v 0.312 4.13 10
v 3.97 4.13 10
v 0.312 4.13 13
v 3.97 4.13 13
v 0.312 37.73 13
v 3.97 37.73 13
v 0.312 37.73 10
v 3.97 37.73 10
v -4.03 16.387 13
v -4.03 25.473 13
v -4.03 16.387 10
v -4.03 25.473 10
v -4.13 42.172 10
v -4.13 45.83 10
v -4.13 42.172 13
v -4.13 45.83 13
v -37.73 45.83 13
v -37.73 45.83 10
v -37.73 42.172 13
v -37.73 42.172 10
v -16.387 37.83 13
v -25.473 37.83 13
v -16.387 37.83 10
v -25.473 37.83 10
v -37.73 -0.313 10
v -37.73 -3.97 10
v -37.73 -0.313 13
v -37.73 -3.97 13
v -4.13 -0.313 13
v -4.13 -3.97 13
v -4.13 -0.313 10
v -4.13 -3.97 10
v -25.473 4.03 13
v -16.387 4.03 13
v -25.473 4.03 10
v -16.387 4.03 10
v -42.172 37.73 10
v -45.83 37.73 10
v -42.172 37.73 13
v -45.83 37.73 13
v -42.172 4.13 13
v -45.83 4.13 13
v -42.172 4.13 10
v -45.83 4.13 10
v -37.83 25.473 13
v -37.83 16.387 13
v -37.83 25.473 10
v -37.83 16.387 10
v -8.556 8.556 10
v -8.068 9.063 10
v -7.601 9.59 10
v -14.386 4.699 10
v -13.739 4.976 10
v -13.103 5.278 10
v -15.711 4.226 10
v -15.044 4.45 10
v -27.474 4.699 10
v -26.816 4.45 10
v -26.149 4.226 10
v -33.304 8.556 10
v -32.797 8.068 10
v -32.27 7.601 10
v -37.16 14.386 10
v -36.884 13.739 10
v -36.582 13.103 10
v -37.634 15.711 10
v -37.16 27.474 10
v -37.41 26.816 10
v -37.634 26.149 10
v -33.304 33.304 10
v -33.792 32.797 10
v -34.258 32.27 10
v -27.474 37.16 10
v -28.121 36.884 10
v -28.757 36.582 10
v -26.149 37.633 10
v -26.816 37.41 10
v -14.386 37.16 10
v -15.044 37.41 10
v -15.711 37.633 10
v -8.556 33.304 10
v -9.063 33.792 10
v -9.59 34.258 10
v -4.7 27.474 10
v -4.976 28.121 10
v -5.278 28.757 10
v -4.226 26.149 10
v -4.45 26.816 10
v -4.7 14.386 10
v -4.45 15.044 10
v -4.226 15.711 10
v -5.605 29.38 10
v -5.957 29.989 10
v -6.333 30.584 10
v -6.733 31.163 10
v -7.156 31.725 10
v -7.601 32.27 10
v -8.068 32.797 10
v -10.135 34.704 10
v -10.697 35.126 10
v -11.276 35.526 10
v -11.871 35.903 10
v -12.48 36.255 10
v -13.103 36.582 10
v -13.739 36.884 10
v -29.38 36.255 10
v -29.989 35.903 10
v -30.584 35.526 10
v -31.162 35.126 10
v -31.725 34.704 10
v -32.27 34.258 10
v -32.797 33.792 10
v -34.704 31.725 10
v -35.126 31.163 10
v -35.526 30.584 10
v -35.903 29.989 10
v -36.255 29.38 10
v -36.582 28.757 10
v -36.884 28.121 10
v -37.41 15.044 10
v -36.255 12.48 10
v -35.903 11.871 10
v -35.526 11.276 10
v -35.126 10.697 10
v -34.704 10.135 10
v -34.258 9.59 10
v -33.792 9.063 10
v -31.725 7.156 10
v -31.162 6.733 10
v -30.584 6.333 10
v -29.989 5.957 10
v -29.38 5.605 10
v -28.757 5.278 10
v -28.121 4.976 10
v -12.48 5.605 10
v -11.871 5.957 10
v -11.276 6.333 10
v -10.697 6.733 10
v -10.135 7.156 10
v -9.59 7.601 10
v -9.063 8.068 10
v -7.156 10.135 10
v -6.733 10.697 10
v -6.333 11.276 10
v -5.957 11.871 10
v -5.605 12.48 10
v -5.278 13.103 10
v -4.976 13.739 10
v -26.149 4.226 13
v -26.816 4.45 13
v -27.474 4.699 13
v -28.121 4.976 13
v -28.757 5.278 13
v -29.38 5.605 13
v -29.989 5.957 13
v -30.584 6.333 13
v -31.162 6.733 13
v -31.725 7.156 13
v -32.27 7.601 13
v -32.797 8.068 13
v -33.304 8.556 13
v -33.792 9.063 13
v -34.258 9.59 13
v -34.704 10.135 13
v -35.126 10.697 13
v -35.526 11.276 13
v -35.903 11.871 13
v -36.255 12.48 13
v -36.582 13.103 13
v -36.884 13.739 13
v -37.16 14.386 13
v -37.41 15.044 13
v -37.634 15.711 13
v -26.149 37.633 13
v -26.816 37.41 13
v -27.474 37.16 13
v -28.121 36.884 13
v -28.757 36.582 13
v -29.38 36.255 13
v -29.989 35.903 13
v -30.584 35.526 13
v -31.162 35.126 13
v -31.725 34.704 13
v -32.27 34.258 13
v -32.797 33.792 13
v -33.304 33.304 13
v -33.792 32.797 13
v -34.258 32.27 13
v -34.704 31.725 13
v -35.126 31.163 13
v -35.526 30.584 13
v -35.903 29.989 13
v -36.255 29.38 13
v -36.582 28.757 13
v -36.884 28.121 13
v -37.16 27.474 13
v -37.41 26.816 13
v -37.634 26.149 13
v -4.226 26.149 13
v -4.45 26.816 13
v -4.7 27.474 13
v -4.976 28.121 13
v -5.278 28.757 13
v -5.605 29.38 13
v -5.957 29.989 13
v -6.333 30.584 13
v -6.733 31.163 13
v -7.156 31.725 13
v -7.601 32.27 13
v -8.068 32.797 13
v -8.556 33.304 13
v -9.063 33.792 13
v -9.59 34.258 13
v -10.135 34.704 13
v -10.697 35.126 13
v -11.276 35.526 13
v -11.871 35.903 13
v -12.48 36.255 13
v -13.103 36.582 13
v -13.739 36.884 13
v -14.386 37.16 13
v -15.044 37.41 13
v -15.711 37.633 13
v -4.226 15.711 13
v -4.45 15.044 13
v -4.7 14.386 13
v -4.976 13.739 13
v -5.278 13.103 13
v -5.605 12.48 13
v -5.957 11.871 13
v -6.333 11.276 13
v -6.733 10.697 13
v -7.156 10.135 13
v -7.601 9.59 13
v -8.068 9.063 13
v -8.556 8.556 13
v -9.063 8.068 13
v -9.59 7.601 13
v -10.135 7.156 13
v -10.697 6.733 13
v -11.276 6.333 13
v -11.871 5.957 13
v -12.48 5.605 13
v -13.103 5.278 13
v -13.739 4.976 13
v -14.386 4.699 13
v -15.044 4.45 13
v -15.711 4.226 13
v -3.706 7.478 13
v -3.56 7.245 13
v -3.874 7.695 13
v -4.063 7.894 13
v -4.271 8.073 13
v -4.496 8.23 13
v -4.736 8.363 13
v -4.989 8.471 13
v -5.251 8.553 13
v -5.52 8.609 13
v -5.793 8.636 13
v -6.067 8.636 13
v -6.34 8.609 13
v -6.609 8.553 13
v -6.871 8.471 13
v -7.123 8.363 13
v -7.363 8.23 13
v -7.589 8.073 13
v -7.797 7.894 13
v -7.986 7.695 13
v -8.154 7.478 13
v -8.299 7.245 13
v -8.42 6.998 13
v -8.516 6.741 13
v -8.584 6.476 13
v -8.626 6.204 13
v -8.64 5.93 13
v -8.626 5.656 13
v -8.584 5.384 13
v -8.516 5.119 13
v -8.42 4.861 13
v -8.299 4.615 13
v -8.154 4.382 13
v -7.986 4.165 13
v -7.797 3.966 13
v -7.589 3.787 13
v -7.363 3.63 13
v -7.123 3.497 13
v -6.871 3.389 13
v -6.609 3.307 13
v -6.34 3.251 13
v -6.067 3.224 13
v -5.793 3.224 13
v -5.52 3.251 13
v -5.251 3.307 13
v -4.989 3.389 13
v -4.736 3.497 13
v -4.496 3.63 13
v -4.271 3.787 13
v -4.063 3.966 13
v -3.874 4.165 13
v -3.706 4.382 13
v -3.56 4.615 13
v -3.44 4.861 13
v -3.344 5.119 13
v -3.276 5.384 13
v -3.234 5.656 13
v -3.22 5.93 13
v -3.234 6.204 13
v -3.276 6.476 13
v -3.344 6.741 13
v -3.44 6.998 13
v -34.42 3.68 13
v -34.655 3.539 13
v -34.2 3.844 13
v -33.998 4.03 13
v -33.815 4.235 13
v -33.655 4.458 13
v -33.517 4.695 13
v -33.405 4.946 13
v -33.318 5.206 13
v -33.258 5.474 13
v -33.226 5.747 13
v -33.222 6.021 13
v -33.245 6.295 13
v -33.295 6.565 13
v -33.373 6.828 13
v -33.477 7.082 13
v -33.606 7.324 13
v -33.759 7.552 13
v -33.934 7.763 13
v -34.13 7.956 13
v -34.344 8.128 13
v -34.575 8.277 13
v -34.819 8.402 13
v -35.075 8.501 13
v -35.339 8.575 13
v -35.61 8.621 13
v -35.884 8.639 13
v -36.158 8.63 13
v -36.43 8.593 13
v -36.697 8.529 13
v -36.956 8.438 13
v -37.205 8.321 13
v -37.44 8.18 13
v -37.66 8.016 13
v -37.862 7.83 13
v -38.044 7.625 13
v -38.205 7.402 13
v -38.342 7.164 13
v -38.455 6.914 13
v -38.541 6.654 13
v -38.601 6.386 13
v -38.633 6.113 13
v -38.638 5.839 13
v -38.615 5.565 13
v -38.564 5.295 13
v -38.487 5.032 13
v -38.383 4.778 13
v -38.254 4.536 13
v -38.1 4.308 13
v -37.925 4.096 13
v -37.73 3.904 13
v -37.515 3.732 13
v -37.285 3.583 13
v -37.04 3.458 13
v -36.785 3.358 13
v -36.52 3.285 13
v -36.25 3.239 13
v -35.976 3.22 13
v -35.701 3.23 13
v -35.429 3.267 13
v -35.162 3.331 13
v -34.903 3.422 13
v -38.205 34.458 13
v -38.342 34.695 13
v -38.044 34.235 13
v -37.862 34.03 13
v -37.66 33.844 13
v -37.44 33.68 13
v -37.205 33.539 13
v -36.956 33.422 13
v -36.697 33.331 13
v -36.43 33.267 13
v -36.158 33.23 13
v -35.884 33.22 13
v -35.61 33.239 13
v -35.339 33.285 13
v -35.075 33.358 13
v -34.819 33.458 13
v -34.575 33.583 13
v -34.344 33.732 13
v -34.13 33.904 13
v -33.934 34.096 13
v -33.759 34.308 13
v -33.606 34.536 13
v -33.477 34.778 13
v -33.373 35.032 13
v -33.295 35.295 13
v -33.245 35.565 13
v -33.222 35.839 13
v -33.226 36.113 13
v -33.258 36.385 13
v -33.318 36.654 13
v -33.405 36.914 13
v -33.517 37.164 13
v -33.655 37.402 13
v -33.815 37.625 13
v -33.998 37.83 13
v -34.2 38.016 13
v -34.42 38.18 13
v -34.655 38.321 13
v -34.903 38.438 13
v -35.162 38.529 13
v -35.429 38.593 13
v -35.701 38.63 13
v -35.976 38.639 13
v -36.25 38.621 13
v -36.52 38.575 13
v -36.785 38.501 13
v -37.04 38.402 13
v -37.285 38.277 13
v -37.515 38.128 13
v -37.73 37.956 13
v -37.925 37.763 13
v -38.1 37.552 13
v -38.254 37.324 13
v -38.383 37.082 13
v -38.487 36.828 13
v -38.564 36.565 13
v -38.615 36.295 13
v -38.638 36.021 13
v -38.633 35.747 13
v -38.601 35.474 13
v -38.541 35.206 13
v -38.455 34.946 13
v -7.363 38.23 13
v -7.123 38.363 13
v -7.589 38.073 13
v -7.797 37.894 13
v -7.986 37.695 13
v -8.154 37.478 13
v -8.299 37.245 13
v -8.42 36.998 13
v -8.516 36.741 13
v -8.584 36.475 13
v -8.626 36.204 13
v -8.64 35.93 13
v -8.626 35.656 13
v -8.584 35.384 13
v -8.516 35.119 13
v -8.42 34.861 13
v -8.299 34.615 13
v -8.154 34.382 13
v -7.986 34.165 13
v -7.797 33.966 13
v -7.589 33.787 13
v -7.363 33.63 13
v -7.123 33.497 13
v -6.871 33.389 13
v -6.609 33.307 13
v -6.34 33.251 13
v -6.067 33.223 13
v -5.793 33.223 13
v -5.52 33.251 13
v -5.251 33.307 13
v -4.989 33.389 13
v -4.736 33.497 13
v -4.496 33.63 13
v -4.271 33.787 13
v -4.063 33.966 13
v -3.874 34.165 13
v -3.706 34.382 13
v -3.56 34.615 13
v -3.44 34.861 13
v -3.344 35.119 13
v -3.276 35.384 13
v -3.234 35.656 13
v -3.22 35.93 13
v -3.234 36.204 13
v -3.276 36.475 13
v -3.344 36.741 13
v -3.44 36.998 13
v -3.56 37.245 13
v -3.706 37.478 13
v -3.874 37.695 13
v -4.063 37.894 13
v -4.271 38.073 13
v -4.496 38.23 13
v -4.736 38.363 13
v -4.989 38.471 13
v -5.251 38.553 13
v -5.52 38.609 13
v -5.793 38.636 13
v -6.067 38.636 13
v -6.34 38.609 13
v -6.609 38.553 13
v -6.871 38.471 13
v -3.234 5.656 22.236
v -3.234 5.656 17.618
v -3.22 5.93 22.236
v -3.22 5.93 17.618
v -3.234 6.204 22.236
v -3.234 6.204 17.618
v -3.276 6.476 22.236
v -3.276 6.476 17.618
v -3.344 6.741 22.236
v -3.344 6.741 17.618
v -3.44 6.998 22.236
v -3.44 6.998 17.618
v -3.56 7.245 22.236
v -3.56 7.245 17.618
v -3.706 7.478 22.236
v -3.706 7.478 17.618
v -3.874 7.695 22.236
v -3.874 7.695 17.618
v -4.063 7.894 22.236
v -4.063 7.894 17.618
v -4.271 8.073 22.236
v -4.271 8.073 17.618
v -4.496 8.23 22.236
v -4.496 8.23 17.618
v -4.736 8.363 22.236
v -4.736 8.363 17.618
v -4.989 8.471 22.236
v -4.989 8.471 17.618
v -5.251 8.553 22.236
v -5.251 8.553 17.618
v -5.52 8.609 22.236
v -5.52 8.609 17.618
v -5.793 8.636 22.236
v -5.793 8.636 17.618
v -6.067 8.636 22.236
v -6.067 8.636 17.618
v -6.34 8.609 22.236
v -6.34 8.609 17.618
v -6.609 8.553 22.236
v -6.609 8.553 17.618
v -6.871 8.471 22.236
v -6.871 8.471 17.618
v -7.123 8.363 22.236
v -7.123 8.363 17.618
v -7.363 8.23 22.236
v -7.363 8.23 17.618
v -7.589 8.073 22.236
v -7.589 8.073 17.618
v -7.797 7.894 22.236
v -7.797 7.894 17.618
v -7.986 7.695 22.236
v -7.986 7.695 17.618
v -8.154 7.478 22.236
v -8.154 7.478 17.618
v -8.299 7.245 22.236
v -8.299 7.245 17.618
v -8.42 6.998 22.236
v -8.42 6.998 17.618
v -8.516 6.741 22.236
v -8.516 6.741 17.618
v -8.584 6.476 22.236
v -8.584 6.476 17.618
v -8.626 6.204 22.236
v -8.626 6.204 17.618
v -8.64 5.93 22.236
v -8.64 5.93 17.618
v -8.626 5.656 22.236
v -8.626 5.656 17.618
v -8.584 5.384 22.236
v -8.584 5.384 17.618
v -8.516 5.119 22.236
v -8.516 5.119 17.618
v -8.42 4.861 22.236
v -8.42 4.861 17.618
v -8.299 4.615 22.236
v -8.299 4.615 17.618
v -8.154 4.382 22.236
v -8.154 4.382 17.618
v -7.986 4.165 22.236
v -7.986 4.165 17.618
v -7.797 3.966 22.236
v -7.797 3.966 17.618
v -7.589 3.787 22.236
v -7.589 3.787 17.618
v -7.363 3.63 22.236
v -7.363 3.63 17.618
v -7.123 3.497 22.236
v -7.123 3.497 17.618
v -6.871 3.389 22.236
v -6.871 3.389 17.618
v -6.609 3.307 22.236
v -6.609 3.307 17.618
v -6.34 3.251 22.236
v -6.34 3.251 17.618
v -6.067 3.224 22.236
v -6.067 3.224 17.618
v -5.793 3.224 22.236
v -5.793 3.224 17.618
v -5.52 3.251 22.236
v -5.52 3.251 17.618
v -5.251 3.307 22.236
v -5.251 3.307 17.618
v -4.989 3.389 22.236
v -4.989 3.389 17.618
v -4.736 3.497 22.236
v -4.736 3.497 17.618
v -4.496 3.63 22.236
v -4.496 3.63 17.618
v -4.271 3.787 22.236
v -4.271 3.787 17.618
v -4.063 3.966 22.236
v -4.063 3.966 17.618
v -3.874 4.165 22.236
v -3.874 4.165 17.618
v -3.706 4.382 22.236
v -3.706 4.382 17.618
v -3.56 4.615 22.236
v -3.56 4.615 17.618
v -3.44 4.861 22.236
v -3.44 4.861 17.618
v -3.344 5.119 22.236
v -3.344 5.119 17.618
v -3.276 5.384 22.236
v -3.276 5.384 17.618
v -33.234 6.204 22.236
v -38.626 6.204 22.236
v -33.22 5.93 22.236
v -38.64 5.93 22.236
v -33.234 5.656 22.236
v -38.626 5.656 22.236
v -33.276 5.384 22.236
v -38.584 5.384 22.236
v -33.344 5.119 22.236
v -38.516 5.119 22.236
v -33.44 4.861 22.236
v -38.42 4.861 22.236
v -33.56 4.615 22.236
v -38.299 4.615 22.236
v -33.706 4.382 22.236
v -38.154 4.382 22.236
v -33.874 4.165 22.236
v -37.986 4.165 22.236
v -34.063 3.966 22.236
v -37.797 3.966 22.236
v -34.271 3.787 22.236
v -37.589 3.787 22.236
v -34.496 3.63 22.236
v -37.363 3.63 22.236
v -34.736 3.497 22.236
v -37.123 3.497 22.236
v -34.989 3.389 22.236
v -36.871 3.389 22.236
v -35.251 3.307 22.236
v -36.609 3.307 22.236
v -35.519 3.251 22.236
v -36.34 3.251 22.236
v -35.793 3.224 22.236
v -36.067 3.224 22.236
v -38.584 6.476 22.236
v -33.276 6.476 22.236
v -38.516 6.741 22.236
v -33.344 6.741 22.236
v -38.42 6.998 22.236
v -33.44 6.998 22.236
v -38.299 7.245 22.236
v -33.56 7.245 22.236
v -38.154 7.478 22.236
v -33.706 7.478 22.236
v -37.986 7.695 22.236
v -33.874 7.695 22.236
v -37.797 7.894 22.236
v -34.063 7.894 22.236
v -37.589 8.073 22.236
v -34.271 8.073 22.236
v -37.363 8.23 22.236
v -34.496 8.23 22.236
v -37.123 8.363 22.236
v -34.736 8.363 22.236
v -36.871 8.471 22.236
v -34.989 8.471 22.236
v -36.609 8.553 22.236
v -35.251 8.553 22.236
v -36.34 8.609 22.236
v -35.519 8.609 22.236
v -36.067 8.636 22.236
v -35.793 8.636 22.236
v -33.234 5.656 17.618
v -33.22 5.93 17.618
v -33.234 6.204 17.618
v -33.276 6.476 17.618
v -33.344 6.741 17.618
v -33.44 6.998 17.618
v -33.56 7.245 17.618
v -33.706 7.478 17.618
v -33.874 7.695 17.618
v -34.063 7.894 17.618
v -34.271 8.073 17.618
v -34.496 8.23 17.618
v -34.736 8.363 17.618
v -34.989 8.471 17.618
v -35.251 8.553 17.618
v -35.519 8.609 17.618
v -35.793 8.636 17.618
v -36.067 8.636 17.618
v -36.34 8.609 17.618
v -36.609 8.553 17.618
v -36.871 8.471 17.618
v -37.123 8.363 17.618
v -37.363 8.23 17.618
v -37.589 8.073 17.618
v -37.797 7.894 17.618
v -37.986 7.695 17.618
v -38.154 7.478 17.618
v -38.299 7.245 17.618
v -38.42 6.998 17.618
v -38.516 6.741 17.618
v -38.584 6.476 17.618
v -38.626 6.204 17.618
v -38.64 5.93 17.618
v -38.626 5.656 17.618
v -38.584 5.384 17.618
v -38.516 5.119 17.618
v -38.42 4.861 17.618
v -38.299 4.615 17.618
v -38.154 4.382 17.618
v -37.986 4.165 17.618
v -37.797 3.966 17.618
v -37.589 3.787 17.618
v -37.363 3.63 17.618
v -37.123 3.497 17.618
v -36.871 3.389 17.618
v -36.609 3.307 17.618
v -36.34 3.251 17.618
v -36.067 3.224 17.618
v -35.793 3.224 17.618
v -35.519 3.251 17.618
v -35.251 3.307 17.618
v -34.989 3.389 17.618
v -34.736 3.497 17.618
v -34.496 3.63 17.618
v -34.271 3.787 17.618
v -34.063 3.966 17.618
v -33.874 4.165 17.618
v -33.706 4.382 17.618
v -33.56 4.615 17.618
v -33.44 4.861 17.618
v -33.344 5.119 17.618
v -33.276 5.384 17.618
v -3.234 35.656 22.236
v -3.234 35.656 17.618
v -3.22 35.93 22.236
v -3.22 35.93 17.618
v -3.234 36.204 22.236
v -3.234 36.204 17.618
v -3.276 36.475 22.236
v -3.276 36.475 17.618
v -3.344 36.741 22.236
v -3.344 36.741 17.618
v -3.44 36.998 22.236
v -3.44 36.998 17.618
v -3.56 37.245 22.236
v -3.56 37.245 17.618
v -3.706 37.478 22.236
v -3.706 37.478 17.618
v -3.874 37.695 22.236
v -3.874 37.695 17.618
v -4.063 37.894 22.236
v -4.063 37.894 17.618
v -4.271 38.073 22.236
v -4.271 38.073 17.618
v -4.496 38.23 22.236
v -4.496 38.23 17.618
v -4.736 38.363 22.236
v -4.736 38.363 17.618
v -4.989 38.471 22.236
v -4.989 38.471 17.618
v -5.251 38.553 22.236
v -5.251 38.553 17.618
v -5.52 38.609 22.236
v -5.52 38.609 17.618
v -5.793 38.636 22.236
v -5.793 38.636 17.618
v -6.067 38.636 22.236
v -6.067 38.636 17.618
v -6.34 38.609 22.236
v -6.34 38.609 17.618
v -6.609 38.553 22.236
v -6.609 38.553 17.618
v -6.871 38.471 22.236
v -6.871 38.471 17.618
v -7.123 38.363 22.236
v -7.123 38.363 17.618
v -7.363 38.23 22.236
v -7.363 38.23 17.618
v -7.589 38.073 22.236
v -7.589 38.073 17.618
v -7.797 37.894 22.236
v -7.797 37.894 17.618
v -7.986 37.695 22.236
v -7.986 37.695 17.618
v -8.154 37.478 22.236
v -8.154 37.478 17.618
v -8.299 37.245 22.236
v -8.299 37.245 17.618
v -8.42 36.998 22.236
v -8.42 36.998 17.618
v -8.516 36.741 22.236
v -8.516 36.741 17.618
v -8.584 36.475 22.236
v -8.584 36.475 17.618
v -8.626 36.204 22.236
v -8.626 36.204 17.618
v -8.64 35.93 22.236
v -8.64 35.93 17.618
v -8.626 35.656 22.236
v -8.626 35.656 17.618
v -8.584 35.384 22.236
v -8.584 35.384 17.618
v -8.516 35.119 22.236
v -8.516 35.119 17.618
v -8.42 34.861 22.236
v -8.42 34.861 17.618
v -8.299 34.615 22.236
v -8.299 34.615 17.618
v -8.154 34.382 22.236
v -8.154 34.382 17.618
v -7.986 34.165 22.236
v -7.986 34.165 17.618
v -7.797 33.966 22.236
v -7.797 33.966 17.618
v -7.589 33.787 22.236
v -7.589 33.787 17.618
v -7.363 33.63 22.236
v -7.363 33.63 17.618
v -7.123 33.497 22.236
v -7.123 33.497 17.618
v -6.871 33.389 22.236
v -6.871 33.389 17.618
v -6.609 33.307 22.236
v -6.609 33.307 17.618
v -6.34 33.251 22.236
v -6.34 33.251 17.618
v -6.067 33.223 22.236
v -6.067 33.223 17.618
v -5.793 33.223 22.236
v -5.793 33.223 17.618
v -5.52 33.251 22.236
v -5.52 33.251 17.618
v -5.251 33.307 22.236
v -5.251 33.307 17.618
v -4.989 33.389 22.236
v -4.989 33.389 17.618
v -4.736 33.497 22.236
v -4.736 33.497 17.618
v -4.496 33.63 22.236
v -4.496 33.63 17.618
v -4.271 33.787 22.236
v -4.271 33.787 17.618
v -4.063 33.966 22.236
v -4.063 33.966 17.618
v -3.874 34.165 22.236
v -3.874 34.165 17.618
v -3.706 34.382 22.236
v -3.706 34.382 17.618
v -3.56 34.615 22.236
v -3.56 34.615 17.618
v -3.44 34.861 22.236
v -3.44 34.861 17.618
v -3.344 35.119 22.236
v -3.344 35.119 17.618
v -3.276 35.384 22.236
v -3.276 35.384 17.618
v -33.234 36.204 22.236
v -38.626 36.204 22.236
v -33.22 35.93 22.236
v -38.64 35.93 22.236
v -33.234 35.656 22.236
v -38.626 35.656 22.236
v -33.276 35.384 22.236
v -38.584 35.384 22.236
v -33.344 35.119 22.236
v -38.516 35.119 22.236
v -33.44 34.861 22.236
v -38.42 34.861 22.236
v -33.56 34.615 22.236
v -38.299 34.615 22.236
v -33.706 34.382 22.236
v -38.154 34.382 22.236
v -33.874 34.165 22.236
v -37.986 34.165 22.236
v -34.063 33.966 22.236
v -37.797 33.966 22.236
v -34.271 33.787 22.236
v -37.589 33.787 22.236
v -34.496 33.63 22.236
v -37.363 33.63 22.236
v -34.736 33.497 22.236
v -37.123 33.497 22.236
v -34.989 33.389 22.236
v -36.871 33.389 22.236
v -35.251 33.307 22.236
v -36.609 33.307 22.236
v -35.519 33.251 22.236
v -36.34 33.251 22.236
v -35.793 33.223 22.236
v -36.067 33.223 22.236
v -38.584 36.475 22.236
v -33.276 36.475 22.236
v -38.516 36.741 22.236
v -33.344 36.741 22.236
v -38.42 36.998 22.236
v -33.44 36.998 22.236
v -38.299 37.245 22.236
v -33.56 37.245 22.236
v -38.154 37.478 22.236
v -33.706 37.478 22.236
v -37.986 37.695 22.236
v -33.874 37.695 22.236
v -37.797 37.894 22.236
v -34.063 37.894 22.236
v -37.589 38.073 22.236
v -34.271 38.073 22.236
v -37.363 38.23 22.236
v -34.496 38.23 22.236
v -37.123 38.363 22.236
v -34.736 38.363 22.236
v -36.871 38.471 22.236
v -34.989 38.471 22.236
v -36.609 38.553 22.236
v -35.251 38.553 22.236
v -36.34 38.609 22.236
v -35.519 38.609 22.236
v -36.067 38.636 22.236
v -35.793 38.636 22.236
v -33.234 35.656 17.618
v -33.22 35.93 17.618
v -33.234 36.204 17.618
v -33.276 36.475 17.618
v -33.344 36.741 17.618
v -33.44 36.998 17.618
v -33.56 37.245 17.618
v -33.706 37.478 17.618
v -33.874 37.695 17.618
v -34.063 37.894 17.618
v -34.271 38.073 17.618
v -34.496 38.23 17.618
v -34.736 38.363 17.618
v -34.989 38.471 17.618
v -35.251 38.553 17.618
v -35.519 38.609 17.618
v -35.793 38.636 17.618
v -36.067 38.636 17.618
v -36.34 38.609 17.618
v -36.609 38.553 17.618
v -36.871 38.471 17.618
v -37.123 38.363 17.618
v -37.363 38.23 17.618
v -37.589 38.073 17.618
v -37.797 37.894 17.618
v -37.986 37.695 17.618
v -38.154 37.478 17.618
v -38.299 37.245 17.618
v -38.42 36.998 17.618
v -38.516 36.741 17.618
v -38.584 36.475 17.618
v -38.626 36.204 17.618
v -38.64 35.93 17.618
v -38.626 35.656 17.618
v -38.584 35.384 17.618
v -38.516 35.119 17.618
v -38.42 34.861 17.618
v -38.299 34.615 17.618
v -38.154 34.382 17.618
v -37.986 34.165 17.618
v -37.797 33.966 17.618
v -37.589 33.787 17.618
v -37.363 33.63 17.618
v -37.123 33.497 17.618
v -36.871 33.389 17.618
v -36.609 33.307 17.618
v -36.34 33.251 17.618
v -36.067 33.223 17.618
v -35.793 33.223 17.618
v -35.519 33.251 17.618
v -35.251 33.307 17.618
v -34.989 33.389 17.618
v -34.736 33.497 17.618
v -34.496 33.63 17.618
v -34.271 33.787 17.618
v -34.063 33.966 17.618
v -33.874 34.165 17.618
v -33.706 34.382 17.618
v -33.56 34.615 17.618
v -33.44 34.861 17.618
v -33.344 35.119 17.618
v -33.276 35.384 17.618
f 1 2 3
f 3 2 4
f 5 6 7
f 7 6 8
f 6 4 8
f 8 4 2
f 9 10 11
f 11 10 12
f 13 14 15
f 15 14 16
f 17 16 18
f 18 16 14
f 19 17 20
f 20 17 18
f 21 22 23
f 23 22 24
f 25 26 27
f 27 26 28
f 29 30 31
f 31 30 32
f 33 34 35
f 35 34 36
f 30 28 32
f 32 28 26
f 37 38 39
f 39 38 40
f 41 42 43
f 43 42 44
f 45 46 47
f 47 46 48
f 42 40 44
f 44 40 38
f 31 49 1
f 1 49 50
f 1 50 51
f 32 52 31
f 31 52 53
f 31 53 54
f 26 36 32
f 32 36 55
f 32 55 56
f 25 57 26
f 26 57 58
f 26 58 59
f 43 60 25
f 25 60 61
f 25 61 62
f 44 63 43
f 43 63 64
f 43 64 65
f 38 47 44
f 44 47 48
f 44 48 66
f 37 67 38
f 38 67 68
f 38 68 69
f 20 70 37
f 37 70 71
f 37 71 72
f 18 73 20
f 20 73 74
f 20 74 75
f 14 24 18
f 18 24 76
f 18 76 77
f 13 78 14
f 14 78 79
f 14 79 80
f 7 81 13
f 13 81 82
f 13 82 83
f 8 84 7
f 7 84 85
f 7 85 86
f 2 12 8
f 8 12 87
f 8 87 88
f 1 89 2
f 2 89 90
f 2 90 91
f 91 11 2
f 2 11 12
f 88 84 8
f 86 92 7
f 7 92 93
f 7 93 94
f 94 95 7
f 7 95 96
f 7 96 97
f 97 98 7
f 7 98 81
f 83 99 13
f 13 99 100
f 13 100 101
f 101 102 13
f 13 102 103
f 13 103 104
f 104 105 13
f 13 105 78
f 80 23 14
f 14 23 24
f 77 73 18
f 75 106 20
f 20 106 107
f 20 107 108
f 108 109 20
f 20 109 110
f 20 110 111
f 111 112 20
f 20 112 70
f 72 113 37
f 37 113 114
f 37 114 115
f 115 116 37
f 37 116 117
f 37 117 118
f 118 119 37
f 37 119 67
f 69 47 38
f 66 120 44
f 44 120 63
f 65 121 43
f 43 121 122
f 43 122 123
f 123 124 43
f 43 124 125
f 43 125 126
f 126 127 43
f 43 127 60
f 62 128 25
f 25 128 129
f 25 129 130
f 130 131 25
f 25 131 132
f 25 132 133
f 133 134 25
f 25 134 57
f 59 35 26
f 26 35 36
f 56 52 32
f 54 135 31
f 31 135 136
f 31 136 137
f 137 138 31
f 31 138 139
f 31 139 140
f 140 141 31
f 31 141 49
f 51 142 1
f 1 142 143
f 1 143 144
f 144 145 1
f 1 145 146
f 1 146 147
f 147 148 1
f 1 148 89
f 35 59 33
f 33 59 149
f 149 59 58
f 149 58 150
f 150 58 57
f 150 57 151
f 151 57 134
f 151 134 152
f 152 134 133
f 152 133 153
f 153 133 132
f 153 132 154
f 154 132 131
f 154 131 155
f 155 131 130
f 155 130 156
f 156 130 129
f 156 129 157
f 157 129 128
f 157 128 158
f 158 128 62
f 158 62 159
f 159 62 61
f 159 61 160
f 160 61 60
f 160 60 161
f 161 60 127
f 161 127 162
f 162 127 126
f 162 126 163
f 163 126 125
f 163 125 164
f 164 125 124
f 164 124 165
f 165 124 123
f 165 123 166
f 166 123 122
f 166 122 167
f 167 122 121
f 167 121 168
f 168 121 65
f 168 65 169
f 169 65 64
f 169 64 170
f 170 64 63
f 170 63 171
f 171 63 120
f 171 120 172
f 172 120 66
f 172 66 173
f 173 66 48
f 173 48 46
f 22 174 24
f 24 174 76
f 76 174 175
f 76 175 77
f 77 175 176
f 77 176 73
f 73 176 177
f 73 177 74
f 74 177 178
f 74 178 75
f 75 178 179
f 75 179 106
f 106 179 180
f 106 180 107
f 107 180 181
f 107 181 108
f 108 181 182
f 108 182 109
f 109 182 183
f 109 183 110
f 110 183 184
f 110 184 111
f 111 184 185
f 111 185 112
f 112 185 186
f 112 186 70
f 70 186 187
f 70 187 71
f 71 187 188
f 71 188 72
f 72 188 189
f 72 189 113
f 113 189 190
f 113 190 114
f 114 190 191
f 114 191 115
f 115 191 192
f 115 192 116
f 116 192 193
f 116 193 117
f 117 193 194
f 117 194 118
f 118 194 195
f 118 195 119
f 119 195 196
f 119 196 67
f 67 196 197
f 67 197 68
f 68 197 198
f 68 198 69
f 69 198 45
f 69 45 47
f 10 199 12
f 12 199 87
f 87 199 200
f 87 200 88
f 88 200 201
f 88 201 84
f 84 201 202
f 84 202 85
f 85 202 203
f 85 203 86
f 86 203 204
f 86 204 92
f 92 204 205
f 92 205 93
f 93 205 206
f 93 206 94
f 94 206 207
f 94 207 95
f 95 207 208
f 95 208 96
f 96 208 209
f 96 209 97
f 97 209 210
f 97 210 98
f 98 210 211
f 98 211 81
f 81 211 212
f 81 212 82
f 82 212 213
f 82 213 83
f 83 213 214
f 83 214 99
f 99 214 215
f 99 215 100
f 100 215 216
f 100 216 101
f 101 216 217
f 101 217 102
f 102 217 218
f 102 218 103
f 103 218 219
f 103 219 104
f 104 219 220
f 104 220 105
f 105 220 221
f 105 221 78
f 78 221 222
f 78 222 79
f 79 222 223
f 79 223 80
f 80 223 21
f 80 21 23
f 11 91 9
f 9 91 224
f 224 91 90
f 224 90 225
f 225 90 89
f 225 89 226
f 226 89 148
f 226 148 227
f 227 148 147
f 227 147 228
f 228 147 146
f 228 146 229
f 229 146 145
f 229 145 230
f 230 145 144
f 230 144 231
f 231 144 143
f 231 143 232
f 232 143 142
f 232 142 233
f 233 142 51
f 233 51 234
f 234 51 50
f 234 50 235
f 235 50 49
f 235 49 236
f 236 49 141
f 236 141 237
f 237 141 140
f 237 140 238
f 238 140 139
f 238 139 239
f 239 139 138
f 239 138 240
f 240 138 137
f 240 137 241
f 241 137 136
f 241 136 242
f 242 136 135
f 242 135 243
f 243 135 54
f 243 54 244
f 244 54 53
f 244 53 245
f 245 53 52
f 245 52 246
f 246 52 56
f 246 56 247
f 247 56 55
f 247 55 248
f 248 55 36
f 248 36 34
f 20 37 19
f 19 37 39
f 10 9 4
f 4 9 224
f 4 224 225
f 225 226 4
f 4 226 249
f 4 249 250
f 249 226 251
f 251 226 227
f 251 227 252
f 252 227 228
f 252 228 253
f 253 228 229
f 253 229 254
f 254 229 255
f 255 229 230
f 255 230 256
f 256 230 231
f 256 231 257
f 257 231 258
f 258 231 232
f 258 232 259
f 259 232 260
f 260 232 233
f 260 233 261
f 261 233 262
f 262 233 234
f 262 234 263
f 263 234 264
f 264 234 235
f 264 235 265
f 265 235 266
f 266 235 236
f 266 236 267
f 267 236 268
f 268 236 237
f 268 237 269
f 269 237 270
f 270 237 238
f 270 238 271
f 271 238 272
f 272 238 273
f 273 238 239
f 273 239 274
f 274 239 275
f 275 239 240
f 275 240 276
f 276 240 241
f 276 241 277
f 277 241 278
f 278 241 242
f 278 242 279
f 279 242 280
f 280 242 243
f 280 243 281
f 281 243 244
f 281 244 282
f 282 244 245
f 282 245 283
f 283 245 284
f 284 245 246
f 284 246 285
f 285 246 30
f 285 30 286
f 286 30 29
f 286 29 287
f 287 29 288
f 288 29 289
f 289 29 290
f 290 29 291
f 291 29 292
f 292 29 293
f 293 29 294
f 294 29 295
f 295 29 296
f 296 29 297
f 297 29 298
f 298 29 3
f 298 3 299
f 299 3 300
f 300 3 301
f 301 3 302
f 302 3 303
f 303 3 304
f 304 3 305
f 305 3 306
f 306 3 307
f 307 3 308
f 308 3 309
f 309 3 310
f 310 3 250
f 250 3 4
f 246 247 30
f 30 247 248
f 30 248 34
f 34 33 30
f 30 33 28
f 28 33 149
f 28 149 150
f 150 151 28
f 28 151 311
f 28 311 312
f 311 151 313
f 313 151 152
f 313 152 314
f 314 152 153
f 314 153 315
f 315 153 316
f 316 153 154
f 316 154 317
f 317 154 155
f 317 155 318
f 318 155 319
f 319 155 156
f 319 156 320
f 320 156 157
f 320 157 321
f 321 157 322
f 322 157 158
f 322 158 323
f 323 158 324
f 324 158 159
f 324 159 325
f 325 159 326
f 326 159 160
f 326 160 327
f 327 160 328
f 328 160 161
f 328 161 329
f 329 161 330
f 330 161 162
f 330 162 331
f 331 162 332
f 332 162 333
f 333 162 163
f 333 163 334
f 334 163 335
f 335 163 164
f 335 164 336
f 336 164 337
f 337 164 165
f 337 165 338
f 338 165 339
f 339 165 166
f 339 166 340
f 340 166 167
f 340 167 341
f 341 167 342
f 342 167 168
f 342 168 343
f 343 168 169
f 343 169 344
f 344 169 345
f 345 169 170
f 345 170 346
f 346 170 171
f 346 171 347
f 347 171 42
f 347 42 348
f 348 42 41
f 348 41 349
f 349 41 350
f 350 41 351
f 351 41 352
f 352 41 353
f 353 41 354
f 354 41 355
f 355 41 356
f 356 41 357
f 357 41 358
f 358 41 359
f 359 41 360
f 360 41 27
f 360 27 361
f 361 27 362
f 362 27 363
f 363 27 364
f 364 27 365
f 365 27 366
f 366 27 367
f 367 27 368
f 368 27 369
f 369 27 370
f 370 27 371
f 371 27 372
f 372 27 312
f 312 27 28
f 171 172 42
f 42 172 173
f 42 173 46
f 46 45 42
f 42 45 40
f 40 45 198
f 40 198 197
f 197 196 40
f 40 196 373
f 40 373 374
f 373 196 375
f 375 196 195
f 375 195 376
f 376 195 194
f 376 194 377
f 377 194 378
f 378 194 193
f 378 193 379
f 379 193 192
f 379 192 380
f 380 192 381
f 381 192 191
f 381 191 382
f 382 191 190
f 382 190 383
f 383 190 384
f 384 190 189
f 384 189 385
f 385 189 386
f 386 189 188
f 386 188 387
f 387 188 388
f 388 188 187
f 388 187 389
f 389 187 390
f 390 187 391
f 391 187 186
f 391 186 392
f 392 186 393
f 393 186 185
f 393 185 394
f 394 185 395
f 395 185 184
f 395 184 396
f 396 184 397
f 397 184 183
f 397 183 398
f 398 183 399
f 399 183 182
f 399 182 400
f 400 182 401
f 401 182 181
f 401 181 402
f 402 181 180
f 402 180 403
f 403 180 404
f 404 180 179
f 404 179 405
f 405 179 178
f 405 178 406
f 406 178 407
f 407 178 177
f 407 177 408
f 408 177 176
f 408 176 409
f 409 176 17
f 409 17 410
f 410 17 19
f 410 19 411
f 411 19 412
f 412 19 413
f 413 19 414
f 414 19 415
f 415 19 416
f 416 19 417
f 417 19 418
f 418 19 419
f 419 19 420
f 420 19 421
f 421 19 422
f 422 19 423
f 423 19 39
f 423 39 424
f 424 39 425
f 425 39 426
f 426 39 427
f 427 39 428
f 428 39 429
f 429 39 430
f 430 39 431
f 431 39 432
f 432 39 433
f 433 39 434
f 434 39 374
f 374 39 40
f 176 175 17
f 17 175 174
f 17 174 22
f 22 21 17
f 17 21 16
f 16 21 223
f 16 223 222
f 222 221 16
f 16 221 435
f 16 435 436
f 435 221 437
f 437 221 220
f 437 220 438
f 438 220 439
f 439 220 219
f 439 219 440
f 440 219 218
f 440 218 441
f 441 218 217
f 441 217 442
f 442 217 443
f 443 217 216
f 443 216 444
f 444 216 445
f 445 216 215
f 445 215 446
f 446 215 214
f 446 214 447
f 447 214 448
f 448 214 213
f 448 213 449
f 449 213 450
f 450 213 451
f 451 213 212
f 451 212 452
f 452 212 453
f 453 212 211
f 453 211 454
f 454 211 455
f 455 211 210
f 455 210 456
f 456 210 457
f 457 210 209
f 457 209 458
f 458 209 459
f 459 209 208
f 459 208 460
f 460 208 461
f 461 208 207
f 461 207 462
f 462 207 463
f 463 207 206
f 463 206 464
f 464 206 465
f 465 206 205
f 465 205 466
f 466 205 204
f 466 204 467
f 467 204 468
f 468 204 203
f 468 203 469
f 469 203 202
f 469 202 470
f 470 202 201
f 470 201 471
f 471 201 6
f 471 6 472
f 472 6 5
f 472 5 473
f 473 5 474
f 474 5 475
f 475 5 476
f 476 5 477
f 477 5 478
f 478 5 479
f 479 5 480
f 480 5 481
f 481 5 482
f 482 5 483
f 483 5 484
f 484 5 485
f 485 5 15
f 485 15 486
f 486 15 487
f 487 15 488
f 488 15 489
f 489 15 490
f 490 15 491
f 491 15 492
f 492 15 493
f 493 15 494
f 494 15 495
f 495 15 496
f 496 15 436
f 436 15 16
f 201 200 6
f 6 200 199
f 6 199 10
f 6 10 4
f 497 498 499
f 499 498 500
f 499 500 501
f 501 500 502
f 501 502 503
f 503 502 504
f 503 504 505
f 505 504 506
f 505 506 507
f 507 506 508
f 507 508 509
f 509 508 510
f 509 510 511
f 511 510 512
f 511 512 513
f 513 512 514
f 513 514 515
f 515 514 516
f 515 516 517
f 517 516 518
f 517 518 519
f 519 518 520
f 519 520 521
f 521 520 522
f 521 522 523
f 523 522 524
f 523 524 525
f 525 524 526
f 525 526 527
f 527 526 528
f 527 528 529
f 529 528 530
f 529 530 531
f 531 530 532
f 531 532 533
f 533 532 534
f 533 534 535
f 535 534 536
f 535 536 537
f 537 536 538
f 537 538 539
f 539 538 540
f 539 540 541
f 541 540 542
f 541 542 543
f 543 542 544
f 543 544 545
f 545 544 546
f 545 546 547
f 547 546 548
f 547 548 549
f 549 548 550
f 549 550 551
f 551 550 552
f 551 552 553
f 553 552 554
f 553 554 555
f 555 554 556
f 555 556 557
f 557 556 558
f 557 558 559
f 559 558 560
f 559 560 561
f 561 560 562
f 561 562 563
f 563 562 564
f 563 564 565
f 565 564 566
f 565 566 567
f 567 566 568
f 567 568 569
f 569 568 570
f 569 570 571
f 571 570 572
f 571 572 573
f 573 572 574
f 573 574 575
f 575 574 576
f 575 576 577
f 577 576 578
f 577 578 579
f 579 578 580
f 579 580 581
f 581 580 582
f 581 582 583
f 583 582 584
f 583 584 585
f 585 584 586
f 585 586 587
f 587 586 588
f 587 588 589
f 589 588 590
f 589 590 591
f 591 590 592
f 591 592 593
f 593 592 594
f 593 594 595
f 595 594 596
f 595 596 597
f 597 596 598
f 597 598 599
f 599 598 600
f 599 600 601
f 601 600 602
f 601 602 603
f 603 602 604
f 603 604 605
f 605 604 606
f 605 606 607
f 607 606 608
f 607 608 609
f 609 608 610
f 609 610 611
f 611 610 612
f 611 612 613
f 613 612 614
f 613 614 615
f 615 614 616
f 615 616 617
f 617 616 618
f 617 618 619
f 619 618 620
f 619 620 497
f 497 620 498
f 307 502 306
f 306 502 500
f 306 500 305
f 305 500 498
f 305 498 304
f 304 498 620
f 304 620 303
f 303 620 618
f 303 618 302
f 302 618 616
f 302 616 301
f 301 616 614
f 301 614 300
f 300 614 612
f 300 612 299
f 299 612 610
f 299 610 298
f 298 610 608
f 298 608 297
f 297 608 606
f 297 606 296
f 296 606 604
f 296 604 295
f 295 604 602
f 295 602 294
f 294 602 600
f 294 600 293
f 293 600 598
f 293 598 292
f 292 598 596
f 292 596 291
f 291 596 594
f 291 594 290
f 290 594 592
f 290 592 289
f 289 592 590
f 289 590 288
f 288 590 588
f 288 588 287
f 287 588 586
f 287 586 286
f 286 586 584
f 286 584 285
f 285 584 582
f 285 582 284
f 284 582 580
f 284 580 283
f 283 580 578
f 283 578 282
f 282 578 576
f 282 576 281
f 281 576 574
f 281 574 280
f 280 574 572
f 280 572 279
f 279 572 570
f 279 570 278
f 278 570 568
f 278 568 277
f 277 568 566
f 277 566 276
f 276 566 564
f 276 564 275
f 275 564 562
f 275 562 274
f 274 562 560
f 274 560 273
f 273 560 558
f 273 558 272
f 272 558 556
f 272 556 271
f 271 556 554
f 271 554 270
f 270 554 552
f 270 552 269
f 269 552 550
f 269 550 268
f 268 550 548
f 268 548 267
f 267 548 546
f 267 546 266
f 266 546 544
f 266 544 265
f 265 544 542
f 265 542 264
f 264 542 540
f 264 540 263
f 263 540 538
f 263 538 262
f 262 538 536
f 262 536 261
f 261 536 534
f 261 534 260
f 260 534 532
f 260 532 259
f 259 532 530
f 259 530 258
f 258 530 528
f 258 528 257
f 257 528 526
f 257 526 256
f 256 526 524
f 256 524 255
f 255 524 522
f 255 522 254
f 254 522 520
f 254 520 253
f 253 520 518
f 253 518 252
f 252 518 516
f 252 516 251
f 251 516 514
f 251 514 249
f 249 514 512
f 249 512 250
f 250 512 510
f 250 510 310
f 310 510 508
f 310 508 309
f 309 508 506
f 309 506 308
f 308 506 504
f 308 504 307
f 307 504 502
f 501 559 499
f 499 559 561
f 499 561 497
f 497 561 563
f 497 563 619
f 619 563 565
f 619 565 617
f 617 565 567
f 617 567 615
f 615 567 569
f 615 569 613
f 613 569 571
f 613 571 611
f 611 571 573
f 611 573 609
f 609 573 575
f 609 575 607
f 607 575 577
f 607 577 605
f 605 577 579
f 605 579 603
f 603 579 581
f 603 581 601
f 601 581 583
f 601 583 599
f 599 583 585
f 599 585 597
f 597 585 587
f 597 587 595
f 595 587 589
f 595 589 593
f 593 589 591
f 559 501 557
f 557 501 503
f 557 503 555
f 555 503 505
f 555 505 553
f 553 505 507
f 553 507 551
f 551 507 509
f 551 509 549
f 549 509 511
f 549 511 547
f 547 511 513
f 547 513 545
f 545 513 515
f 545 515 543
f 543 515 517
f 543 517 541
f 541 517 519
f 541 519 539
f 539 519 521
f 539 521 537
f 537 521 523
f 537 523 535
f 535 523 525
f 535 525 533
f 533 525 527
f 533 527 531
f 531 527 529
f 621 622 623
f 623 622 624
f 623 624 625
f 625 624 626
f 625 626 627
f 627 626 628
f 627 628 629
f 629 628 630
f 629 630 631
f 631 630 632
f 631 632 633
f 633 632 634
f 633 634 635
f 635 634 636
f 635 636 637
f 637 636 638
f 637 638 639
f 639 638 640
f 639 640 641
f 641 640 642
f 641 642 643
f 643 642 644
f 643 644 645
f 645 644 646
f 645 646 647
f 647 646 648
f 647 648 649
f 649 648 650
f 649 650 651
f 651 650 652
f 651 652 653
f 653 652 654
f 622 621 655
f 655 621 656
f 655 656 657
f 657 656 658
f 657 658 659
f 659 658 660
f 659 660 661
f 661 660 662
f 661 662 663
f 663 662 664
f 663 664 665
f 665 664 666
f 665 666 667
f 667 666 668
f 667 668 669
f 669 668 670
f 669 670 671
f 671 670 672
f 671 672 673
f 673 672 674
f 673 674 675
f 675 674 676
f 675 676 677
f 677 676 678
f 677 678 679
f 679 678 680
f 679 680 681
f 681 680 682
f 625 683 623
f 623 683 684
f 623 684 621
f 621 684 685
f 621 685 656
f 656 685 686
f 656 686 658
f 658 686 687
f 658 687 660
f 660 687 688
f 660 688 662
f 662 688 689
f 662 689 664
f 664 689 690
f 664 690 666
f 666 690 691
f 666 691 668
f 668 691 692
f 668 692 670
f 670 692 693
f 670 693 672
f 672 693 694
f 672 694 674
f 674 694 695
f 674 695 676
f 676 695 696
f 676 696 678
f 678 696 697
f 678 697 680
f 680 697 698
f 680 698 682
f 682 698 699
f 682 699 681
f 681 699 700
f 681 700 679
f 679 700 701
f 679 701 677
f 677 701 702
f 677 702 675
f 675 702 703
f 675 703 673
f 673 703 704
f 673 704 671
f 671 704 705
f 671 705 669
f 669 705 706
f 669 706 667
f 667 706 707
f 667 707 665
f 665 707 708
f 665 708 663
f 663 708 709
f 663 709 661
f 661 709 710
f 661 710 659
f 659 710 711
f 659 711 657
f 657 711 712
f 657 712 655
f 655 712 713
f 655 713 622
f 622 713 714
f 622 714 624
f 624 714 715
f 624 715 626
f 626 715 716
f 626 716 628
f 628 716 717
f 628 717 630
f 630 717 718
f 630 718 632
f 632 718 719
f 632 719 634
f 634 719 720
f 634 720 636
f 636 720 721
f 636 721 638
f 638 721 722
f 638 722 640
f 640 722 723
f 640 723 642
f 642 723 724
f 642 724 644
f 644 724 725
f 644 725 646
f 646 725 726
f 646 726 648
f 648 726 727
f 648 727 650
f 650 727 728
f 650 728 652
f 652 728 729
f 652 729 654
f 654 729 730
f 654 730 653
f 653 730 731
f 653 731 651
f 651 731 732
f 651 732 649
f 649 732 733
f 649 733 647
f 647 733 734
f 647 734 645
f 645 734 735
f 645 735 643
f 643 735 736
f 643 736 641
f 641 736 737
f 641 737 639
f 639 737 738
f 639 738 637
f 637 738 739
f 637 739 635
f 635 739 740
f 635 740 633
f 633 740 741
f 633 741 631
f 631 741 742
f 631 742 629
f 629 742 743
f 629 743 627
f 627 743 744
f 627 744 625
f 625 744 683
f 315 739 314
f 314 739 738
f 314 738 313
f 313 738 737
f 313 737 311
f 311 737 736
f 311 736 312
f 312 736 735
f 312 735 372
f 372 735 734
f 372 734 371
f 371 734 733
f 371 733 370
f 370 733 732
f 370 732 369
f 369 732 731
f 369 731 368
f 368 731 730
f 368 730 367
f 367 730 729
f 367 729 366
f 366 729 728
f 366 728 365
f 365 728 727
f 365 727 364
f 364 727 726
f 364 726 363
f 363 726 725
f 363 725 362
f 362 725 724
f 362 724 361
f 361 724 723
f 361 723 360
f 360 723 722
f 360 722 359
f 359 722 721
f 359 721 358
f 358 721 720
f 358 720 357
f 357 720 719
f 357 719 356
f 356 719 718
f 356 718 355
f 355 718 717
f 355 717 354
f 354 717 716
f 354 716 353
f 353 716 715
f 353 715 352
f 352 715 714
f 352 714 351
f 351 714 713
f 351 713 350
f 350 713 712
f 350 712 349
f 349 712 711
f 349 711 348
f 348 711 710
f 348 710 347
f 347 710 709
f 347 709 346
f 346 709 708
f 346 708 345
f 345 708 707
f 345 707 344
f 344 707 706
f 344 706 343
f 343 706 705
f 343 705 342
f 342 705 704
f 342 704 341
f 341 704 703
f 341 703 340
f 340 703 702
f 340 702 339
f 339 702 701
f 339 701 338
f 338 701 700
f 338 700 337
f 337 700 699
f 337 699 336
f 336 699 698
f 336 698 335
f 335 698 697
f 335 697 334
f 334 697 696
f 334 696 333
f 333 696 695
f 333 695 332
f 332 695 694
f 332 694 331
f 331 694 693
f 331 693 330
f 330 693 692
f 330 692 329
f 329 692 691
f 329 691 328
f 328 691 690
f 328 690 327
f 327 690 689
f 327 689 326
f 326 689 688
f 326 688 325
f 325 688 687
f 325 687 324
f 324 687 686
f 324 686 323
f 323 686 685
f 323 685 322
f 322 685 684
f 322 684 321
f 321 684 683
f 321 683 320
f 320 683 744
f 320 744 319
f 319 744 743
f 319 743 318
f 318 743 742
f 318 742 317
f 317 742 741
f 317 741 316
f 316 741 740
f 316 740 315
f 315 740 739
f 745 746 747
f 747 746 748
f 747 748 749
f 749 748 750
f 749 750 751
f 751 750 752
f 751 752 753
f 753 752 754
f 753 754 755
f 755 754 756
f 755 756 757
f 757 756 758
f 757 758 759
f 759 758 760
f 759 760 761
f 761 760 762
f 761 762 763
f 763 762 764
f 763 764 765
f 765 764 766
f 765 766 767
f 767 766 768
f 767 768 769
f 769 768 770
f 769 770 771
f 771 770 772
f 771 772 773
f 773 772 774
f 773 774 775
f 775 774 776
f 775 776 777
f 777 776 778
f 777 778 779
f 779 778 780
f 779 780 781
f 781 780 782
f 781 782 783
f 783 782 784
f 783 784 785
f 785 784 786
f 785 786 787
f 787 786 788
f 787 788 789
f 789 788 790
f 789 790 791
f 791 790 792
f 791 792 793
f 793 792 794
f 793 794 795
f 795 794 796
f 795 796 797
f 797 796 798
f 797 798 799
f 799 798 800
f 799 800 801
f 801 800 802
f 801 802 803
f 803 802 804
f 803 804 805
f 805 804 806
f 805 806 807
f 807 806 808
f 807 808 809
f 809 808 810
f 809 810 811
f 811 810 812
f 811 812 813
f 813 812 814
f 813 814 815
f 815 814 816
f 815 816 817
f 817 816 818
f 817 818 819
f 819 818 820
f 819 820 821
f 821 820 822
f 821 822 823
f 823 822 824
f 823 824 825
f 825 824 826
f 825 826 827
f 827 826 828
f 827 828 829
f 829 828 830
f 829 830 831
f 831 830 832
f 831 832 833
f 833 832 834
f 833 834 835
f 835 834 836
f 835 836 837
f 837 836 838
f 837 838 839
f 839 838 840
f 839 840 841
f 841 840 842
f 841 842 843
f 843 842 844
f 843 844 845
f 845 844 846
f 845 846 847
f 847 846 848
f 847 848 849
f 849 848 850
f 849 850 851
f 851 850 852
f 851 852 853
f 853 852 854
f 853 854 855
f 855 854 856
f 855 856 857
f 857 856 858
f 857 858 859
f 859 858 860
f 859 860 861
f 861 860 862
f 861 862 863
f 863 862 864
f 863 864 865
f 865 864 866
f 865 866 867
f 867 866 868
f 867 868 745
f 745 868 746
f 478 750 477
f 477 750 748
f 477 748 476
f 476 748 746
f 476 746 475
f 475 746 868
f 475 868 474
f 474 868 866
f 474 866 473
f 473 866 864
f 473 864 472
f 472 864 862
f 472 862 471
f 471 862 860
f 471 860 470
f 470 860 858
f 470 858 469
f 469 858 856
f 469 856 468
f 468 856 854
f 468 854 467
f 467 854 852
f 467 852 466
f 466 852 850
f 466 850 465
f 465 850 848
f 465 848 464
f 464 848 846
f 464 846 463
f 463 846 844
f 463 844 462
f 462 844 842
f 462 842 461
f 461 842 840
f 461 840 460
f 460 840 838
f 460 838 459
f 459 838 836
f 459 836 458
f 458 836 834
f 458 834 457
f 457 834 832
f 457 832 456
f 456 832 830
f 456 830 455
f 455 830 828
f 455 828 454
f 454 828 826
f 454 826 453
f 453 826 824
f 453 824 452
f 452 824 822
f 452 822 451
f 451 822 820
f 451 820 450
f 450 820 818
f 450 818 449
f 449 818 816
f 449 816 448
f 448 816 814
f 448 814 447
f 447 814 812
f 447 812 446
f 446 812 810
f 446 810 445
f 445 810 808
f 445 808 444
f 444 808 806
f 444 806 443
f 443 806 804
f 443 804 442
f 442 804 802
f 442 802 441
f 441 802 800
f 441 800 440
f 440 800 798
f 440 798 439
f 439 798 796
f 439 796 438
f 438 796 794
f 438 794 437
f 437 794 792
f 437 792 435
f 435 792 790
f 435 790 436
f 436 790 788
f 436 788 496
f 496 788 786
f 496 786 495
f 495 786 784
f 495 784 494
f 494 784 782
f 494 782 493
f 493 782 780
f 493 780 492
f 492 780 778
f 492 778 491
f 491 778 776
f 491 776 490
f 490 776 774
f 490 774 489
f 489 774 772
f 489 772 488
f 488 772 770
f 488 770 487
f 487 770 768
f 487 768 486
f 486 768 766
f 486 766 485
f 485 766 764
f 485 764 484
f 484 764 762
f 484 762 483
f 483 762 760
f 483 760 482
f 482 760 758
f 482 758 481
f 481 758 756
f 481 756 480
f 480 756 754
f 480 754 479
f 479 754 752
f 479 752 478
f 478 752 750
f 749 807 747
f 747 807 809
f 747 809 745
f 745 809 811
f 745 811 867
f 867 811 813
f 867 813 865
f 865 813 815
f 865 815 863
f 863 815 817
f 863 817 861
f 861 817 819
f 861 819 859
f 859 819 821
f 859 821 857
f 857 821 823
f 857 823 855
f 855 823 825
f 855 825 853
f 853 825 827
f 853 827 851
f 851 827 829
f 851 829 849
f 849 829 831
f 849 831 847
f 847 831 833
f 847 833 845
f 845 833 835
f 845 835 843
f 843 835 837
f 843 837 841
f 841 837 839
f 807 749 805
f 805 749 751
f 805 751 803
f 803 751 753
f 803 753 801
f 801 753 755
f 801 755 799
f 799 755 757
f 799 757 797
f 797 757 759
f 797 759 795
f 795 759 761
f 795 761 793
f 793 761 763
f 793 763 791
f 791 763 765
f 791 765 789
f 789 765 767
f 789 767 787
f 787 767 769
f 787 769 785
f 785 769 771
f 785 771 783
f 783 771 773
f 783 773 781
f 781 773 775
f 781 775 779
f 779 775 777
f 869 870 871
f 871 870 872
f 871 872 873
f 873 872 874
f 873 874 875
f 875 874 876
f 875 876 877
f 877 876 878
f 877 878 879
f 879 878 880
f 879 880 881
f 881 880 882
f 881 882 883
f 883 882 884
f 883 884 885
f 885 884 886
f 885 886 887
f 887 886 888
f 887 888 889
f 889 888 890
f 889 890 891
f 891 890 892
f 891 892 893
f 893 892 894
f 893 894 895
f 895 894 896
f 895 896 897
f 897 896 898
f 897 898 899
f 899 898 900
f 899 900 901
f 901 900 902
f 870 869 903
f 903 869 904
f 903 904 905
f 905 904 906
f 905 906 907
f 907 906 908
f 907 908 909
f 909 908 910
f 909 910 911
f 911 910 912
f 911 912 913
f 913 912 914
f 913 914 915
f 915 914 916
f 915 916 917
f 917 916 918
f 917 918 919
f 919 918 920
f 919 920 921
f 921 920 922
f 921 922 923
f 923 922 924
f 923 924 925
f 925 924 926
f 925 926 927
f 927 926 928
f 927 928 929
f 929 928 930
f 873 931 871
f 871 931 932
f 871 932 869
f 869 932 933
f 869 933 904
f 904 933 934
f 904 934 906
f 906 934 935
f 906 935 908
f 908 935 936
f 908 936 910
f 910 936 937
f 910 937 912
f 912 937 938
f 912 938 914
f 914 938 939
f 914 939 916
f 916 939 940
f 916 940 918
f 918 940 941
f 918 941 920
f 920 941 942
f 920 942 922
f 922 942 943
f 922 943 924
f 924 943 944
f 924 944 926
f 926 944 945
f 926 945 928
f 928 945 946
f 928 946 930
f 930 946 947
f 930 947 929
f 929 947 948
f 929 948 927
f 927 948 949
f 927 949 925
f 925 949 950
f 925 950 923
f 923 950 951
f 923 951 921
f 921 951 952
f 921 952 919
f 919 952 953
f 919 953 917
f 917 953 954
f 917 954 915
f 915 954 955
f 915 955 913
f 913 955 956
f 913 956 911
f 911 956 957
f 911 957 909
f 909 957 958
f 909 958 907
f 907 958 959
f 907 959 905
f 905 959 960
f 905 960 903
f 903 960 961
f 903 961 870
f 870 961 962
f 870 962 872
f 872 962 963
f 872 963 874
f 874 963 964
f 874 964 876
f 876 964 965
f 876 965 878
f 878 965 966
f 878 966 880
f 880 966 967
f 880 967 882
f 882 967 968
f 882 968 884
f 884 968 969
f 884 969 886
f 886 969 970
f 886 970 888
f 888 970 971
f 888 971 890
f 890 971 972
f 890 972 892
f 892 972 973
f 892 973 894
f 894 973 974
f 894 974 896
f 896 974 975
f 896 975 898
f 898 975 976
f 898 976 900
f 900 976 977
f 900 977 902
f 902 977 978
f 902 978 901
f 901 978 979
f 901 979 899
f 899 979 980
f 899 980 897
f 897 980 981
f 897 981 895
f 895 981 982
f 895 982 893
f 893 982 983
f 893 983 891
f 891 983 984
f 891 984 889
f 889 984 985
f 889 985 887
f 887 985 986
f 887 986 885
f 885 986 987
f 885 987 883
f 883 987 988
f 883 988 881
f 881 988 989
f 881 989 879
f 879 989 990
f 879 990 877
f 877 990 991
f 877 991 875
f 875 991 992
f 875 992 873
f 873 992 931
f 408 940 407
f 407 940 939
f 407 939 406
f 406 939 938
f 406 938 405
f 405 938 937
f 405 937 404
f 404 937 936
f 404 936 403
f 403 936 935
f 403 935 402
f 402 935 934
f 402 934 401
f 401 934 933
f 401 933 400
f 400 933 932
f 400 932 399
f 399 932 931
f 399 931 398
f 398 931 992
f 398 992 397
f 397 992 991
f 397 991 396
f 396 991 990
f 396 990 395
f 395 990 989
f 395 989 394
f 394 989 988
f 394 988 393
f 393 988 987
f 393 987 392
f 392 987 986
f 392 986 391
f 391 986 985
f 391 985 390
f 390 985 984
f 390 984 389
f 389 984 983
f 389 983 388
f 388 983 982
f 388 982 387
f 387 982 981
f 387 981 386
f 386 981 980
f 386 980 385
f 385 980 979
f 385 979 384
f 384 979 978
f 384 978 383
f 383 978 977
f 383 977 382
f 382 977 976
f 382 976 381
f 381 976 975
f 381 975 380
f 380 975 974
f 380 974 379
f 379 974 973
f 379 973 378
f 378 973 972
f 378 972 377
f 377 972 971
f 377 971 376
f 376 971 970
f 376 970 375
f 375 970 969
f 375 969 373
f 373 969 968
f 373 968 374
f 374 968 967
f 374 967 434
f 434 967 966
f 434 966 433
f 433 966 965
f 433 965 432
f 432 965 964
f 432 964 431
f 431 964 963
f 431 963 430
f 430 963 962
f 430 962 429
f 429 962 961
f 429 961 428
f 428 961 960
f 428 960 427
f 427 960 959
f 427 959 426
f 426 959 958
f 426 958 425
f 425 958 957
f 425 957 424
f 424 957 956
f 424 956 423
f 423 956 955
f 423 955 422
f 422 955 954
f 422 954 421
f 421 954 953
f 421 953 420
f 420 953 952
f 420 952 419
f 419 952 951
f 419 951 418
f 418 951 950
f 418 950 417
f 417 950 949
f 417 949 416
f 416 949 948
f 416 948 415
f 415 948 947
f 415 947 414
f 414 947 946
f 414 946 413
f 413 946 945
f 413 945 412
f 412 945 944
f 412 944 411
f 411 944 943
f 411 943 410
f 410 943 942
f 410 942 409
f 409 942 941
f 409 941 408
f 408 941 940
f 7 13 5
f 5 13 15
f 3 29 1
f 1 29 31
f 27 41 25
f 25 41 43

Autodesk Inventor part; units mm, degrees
ref_plane "YZ Plane" through (0, 0, 0) normal (1, 0, 0) x (0, 1, 0)
ref_plane "XZ Plane" through (0, 0, 0) normal (0, 1, 0) x (-1, 0, 0)
ref_plane "Work Plane1" through (0, 0, 10) normal (0, 0, 1) x (1, 0, 0)
sketch "Sketch1" plane through (0, 0, 10) normal (0, 0, 1) x (1, 0, 0)
  line L0 (-4.0299, -0.3538) -> (-2.2322, 1.4439) construction
  arc A0 (-1.4439, 2.2322) -> (-2.2322, 1.4439) centre (-0.9299, 0.9299) ccw construction
  line L1 (-1.4439, 2.2322) -> (0.3538, 4.0299) construction
  line L2 (-37.8299, 42.8299) -> (-37.8299, 37.8299) construction
  line L3 (-37.8299, 37.8299) -> (-42.9208, 37.8299) construction
  line L4 (-37.8299, 42.2137) -> (-37.8299, 45.8299) construction
  line L5 (-37.8299, 45.8299) -> (-4.0299, 45.8299) construction
  line L6 (-4.0299, 45.8299) -> (-4.0299, 42.2137) construction
  line L7 (-4.0299, 4.0299) -> (0.3538, 4.0299) projected
  circle A1 centre (-20.9299, 20.9299) radius 17.5 projected
  line L8 (-20.9299, 58.9723) -> (17.1124, 20.9299) construction
  line L9 (17.1124, 20.9299) -> (-20.9299, -17.1124) construction
  line L10 (-20.9299, -17.1124) -> (-58.9723, 20.9299) construction
  line L11 (-58.9723, 20.9299) -> (-20.9299, 58.9723) construction
  line L12 (-20.9299, 58.9723) -> (-20.9299, -17.1124) construction
  line L13 (17.1124, 20.9299) -> (-58.9723, 20.9299) construction
  line L14 (-20.9299, 58.9723) -> (32.8701, 58.9723) construction
  line L15 (-43.4299, 43.4299) -> (1.5701, 43.4299) construction
  line L16 (1.5701, 43.4299) -> (1.5701, -1.5701) construction
  line L17 (1.5701, -1.5701) -> (-43.4299, -1.5701) construction
  line L18 (-43.4299, -1.5701) -> (-43.4299, 43.4299) construction
  line L19 (-43.4299, 43.4299) -> (1.5701, -1.5701) construction
  line L20 (1.5701, 43.4299) -> (-43.4299, -1.5701) construction
  line L21 (-43.4299, 5.3876) -> (-43.4299, 36.4723)
  line L22 (-43.4299, 36.4723) -> (-36.4723, 43.4299)
  line L23 (-36.4723, 43.4299) -> (-5.3876, 43.4299)
  line L24 (-5.3876, 43.4299) -> (1.5701, 36.4723)
  line L25 (1.5701, 36.4723) -> (1.5701, 5.3876)
  line L26 (1.5701, 5.3876) -> (-5.3876, -1.5701)
  line L27 (-5.3876, -1.5701) -> (-36.4723, -1.5701)
  line L28 (-36.4723, -1.5701) -> (-43.4299, 5.3876)
  line L29 (-4.0299, 42.2137) -> (-37.8299, 42.2137) projected
  line L30 (-4.0299, -0.3538) -> (-4.0299, 4.0299) projected
  point P0 (-37.8299, 4.0299)
  point P1 (-20.9299, 20.9299)
  dimension "d18" = 53.8
  dimension "d19" = 45
  dimension "d20" = 53.8
  dimension "d21" = 45
  dimension "d22" = 45
extrude "Extrusion1" add sketch "Sketch1" along normal blind 3
sketch "Sketch2" plane through (0, 0, 13) normal (0, 0, 1) x (1, 0, 0)
  circle A0 centre (-35.9299, 35.9299) radius 3.0099 construction
  circle A1 centre (-5.93, 35.9299) radius 3.0099 construction
  circle A2 centre (-5.93, 5.93) radius 3.0099 construction
  circle A3 centre (-35.9299, 5.93) radius 3.0099 construction
  circle A4 centre (-35.9299, 35.9299) radius 2.7099
  circle A5 centre (-5.93, 35.9299) radius 2.7099
  circle A6 centre (-5.93, 5.93) radius 2.7099
  circle A7 centre (-35.9299, 5.93) radius 2.7099
  point P0 (0, 0)
  dimension "d_1" = 0.3
  dimension "d13" = 0.3
  dimension "d14" = 0.3
  dimension "d15" = 0.3
ref_plane "Work Plane2" through (-40.9959, 0.8639, 22.2359) normal (0, 0, 1) x (1, 0, 0)
extrude "Extrusion2" add sketch "Sketch2" along normal up to surface (9.2359 mm away)
sketch "Sketch3" plane through (0, 0, 10) normal (0, 0, -1) x (-1, 0, 0)
  line L0 (37.8299, -0.4701) -> (37.8299, 4.0299) construction
  line L1 (4.0299, 4.0299) -> (4.0299, -0.4701) construction
  line L2 (37.8299, -0.4701) -> (37.8299, 1.1886) construction
  line L3 (4.0299, -3.9701) -> (4.0299, -0.3538) construction
  line L4 (45.8299, 4.0299) -> (42.2137, 4.0299) construction
  line L5 (-0.3538, 4.0299) -> (-3.9701, 4.0299) construction
  line L6 (-3.9701, 37.8299) -> (-0.3538, 37.8299) construction
  line L7 (4.0299, 42.2137) -> (4.0299, 45.8299) construction
  line L8 (37.8299, 45.8299) -> (37.8299, 42.2137) construction
  line L9 (42.2137, 37.8299) -> (45.8299, 37.8299) construction
  line L10 (37.8299, 37.7299) -> (45.8299, 37.7299)
  line L11 (45.8299, 37.7299) -> (45.8299, 4.1299)
  line L12 (45.8299, 4.1299) -> (37.8299, 4.1299)
  line L13 (37.8299, 4.1299) -> (37.8299, 37.7299)
  line L14 (37.7299, 4.0299) -> (4.1299, 4.0299)
  line L15 (4.1299, 4.0299) -> (4.1299, -3.9701)
  line L16 (4.1299, -3.9701) -> (37.7299, -3.9701)
  line L17 (37.7299, -3.9701) -> (37.7299, 4.0299)
  line L18 (4.0299, 4.1299) -> (-3.9701, 4.1299)
  line L19 (-3.9701, 4.1299) -> (-3.9701, 37.7299)
  line L20 (-3.9701, 37.7299) -> (4.0299, 37.7299)
  line L21 (4.0299, 37.7299) -> (4.0299, 4.1299)
  line L22 (4.1299, 37.8299) -> (37.7299, 37.8299)
  line L23 (37.7299, 37.8299) -> (37.7299, 45.8299)
  line L24 (37.7299, 45.8299) -> (4.1299, 45.8299)
  line L25 (4.1299, 45.8299) -> (4.1299, 37.8299)
  point P0 (0, 0)
  dimension "d23" = 0.1
  dimension "d24" = 0.1
  dimension "d25" = 0.1
  dimension "d26" = 0.1
  dimension "d27" = 0.1
extrude "Extrusion3" add sketch "Sketch3" against normal up to surface (3 mm away)
equation "\"d13\" = d_1"
equation "\"d14\" = d_1"
equation "\"d15\" = d_1"
properties part number "50_Cube_Insert_Thorlabs"
